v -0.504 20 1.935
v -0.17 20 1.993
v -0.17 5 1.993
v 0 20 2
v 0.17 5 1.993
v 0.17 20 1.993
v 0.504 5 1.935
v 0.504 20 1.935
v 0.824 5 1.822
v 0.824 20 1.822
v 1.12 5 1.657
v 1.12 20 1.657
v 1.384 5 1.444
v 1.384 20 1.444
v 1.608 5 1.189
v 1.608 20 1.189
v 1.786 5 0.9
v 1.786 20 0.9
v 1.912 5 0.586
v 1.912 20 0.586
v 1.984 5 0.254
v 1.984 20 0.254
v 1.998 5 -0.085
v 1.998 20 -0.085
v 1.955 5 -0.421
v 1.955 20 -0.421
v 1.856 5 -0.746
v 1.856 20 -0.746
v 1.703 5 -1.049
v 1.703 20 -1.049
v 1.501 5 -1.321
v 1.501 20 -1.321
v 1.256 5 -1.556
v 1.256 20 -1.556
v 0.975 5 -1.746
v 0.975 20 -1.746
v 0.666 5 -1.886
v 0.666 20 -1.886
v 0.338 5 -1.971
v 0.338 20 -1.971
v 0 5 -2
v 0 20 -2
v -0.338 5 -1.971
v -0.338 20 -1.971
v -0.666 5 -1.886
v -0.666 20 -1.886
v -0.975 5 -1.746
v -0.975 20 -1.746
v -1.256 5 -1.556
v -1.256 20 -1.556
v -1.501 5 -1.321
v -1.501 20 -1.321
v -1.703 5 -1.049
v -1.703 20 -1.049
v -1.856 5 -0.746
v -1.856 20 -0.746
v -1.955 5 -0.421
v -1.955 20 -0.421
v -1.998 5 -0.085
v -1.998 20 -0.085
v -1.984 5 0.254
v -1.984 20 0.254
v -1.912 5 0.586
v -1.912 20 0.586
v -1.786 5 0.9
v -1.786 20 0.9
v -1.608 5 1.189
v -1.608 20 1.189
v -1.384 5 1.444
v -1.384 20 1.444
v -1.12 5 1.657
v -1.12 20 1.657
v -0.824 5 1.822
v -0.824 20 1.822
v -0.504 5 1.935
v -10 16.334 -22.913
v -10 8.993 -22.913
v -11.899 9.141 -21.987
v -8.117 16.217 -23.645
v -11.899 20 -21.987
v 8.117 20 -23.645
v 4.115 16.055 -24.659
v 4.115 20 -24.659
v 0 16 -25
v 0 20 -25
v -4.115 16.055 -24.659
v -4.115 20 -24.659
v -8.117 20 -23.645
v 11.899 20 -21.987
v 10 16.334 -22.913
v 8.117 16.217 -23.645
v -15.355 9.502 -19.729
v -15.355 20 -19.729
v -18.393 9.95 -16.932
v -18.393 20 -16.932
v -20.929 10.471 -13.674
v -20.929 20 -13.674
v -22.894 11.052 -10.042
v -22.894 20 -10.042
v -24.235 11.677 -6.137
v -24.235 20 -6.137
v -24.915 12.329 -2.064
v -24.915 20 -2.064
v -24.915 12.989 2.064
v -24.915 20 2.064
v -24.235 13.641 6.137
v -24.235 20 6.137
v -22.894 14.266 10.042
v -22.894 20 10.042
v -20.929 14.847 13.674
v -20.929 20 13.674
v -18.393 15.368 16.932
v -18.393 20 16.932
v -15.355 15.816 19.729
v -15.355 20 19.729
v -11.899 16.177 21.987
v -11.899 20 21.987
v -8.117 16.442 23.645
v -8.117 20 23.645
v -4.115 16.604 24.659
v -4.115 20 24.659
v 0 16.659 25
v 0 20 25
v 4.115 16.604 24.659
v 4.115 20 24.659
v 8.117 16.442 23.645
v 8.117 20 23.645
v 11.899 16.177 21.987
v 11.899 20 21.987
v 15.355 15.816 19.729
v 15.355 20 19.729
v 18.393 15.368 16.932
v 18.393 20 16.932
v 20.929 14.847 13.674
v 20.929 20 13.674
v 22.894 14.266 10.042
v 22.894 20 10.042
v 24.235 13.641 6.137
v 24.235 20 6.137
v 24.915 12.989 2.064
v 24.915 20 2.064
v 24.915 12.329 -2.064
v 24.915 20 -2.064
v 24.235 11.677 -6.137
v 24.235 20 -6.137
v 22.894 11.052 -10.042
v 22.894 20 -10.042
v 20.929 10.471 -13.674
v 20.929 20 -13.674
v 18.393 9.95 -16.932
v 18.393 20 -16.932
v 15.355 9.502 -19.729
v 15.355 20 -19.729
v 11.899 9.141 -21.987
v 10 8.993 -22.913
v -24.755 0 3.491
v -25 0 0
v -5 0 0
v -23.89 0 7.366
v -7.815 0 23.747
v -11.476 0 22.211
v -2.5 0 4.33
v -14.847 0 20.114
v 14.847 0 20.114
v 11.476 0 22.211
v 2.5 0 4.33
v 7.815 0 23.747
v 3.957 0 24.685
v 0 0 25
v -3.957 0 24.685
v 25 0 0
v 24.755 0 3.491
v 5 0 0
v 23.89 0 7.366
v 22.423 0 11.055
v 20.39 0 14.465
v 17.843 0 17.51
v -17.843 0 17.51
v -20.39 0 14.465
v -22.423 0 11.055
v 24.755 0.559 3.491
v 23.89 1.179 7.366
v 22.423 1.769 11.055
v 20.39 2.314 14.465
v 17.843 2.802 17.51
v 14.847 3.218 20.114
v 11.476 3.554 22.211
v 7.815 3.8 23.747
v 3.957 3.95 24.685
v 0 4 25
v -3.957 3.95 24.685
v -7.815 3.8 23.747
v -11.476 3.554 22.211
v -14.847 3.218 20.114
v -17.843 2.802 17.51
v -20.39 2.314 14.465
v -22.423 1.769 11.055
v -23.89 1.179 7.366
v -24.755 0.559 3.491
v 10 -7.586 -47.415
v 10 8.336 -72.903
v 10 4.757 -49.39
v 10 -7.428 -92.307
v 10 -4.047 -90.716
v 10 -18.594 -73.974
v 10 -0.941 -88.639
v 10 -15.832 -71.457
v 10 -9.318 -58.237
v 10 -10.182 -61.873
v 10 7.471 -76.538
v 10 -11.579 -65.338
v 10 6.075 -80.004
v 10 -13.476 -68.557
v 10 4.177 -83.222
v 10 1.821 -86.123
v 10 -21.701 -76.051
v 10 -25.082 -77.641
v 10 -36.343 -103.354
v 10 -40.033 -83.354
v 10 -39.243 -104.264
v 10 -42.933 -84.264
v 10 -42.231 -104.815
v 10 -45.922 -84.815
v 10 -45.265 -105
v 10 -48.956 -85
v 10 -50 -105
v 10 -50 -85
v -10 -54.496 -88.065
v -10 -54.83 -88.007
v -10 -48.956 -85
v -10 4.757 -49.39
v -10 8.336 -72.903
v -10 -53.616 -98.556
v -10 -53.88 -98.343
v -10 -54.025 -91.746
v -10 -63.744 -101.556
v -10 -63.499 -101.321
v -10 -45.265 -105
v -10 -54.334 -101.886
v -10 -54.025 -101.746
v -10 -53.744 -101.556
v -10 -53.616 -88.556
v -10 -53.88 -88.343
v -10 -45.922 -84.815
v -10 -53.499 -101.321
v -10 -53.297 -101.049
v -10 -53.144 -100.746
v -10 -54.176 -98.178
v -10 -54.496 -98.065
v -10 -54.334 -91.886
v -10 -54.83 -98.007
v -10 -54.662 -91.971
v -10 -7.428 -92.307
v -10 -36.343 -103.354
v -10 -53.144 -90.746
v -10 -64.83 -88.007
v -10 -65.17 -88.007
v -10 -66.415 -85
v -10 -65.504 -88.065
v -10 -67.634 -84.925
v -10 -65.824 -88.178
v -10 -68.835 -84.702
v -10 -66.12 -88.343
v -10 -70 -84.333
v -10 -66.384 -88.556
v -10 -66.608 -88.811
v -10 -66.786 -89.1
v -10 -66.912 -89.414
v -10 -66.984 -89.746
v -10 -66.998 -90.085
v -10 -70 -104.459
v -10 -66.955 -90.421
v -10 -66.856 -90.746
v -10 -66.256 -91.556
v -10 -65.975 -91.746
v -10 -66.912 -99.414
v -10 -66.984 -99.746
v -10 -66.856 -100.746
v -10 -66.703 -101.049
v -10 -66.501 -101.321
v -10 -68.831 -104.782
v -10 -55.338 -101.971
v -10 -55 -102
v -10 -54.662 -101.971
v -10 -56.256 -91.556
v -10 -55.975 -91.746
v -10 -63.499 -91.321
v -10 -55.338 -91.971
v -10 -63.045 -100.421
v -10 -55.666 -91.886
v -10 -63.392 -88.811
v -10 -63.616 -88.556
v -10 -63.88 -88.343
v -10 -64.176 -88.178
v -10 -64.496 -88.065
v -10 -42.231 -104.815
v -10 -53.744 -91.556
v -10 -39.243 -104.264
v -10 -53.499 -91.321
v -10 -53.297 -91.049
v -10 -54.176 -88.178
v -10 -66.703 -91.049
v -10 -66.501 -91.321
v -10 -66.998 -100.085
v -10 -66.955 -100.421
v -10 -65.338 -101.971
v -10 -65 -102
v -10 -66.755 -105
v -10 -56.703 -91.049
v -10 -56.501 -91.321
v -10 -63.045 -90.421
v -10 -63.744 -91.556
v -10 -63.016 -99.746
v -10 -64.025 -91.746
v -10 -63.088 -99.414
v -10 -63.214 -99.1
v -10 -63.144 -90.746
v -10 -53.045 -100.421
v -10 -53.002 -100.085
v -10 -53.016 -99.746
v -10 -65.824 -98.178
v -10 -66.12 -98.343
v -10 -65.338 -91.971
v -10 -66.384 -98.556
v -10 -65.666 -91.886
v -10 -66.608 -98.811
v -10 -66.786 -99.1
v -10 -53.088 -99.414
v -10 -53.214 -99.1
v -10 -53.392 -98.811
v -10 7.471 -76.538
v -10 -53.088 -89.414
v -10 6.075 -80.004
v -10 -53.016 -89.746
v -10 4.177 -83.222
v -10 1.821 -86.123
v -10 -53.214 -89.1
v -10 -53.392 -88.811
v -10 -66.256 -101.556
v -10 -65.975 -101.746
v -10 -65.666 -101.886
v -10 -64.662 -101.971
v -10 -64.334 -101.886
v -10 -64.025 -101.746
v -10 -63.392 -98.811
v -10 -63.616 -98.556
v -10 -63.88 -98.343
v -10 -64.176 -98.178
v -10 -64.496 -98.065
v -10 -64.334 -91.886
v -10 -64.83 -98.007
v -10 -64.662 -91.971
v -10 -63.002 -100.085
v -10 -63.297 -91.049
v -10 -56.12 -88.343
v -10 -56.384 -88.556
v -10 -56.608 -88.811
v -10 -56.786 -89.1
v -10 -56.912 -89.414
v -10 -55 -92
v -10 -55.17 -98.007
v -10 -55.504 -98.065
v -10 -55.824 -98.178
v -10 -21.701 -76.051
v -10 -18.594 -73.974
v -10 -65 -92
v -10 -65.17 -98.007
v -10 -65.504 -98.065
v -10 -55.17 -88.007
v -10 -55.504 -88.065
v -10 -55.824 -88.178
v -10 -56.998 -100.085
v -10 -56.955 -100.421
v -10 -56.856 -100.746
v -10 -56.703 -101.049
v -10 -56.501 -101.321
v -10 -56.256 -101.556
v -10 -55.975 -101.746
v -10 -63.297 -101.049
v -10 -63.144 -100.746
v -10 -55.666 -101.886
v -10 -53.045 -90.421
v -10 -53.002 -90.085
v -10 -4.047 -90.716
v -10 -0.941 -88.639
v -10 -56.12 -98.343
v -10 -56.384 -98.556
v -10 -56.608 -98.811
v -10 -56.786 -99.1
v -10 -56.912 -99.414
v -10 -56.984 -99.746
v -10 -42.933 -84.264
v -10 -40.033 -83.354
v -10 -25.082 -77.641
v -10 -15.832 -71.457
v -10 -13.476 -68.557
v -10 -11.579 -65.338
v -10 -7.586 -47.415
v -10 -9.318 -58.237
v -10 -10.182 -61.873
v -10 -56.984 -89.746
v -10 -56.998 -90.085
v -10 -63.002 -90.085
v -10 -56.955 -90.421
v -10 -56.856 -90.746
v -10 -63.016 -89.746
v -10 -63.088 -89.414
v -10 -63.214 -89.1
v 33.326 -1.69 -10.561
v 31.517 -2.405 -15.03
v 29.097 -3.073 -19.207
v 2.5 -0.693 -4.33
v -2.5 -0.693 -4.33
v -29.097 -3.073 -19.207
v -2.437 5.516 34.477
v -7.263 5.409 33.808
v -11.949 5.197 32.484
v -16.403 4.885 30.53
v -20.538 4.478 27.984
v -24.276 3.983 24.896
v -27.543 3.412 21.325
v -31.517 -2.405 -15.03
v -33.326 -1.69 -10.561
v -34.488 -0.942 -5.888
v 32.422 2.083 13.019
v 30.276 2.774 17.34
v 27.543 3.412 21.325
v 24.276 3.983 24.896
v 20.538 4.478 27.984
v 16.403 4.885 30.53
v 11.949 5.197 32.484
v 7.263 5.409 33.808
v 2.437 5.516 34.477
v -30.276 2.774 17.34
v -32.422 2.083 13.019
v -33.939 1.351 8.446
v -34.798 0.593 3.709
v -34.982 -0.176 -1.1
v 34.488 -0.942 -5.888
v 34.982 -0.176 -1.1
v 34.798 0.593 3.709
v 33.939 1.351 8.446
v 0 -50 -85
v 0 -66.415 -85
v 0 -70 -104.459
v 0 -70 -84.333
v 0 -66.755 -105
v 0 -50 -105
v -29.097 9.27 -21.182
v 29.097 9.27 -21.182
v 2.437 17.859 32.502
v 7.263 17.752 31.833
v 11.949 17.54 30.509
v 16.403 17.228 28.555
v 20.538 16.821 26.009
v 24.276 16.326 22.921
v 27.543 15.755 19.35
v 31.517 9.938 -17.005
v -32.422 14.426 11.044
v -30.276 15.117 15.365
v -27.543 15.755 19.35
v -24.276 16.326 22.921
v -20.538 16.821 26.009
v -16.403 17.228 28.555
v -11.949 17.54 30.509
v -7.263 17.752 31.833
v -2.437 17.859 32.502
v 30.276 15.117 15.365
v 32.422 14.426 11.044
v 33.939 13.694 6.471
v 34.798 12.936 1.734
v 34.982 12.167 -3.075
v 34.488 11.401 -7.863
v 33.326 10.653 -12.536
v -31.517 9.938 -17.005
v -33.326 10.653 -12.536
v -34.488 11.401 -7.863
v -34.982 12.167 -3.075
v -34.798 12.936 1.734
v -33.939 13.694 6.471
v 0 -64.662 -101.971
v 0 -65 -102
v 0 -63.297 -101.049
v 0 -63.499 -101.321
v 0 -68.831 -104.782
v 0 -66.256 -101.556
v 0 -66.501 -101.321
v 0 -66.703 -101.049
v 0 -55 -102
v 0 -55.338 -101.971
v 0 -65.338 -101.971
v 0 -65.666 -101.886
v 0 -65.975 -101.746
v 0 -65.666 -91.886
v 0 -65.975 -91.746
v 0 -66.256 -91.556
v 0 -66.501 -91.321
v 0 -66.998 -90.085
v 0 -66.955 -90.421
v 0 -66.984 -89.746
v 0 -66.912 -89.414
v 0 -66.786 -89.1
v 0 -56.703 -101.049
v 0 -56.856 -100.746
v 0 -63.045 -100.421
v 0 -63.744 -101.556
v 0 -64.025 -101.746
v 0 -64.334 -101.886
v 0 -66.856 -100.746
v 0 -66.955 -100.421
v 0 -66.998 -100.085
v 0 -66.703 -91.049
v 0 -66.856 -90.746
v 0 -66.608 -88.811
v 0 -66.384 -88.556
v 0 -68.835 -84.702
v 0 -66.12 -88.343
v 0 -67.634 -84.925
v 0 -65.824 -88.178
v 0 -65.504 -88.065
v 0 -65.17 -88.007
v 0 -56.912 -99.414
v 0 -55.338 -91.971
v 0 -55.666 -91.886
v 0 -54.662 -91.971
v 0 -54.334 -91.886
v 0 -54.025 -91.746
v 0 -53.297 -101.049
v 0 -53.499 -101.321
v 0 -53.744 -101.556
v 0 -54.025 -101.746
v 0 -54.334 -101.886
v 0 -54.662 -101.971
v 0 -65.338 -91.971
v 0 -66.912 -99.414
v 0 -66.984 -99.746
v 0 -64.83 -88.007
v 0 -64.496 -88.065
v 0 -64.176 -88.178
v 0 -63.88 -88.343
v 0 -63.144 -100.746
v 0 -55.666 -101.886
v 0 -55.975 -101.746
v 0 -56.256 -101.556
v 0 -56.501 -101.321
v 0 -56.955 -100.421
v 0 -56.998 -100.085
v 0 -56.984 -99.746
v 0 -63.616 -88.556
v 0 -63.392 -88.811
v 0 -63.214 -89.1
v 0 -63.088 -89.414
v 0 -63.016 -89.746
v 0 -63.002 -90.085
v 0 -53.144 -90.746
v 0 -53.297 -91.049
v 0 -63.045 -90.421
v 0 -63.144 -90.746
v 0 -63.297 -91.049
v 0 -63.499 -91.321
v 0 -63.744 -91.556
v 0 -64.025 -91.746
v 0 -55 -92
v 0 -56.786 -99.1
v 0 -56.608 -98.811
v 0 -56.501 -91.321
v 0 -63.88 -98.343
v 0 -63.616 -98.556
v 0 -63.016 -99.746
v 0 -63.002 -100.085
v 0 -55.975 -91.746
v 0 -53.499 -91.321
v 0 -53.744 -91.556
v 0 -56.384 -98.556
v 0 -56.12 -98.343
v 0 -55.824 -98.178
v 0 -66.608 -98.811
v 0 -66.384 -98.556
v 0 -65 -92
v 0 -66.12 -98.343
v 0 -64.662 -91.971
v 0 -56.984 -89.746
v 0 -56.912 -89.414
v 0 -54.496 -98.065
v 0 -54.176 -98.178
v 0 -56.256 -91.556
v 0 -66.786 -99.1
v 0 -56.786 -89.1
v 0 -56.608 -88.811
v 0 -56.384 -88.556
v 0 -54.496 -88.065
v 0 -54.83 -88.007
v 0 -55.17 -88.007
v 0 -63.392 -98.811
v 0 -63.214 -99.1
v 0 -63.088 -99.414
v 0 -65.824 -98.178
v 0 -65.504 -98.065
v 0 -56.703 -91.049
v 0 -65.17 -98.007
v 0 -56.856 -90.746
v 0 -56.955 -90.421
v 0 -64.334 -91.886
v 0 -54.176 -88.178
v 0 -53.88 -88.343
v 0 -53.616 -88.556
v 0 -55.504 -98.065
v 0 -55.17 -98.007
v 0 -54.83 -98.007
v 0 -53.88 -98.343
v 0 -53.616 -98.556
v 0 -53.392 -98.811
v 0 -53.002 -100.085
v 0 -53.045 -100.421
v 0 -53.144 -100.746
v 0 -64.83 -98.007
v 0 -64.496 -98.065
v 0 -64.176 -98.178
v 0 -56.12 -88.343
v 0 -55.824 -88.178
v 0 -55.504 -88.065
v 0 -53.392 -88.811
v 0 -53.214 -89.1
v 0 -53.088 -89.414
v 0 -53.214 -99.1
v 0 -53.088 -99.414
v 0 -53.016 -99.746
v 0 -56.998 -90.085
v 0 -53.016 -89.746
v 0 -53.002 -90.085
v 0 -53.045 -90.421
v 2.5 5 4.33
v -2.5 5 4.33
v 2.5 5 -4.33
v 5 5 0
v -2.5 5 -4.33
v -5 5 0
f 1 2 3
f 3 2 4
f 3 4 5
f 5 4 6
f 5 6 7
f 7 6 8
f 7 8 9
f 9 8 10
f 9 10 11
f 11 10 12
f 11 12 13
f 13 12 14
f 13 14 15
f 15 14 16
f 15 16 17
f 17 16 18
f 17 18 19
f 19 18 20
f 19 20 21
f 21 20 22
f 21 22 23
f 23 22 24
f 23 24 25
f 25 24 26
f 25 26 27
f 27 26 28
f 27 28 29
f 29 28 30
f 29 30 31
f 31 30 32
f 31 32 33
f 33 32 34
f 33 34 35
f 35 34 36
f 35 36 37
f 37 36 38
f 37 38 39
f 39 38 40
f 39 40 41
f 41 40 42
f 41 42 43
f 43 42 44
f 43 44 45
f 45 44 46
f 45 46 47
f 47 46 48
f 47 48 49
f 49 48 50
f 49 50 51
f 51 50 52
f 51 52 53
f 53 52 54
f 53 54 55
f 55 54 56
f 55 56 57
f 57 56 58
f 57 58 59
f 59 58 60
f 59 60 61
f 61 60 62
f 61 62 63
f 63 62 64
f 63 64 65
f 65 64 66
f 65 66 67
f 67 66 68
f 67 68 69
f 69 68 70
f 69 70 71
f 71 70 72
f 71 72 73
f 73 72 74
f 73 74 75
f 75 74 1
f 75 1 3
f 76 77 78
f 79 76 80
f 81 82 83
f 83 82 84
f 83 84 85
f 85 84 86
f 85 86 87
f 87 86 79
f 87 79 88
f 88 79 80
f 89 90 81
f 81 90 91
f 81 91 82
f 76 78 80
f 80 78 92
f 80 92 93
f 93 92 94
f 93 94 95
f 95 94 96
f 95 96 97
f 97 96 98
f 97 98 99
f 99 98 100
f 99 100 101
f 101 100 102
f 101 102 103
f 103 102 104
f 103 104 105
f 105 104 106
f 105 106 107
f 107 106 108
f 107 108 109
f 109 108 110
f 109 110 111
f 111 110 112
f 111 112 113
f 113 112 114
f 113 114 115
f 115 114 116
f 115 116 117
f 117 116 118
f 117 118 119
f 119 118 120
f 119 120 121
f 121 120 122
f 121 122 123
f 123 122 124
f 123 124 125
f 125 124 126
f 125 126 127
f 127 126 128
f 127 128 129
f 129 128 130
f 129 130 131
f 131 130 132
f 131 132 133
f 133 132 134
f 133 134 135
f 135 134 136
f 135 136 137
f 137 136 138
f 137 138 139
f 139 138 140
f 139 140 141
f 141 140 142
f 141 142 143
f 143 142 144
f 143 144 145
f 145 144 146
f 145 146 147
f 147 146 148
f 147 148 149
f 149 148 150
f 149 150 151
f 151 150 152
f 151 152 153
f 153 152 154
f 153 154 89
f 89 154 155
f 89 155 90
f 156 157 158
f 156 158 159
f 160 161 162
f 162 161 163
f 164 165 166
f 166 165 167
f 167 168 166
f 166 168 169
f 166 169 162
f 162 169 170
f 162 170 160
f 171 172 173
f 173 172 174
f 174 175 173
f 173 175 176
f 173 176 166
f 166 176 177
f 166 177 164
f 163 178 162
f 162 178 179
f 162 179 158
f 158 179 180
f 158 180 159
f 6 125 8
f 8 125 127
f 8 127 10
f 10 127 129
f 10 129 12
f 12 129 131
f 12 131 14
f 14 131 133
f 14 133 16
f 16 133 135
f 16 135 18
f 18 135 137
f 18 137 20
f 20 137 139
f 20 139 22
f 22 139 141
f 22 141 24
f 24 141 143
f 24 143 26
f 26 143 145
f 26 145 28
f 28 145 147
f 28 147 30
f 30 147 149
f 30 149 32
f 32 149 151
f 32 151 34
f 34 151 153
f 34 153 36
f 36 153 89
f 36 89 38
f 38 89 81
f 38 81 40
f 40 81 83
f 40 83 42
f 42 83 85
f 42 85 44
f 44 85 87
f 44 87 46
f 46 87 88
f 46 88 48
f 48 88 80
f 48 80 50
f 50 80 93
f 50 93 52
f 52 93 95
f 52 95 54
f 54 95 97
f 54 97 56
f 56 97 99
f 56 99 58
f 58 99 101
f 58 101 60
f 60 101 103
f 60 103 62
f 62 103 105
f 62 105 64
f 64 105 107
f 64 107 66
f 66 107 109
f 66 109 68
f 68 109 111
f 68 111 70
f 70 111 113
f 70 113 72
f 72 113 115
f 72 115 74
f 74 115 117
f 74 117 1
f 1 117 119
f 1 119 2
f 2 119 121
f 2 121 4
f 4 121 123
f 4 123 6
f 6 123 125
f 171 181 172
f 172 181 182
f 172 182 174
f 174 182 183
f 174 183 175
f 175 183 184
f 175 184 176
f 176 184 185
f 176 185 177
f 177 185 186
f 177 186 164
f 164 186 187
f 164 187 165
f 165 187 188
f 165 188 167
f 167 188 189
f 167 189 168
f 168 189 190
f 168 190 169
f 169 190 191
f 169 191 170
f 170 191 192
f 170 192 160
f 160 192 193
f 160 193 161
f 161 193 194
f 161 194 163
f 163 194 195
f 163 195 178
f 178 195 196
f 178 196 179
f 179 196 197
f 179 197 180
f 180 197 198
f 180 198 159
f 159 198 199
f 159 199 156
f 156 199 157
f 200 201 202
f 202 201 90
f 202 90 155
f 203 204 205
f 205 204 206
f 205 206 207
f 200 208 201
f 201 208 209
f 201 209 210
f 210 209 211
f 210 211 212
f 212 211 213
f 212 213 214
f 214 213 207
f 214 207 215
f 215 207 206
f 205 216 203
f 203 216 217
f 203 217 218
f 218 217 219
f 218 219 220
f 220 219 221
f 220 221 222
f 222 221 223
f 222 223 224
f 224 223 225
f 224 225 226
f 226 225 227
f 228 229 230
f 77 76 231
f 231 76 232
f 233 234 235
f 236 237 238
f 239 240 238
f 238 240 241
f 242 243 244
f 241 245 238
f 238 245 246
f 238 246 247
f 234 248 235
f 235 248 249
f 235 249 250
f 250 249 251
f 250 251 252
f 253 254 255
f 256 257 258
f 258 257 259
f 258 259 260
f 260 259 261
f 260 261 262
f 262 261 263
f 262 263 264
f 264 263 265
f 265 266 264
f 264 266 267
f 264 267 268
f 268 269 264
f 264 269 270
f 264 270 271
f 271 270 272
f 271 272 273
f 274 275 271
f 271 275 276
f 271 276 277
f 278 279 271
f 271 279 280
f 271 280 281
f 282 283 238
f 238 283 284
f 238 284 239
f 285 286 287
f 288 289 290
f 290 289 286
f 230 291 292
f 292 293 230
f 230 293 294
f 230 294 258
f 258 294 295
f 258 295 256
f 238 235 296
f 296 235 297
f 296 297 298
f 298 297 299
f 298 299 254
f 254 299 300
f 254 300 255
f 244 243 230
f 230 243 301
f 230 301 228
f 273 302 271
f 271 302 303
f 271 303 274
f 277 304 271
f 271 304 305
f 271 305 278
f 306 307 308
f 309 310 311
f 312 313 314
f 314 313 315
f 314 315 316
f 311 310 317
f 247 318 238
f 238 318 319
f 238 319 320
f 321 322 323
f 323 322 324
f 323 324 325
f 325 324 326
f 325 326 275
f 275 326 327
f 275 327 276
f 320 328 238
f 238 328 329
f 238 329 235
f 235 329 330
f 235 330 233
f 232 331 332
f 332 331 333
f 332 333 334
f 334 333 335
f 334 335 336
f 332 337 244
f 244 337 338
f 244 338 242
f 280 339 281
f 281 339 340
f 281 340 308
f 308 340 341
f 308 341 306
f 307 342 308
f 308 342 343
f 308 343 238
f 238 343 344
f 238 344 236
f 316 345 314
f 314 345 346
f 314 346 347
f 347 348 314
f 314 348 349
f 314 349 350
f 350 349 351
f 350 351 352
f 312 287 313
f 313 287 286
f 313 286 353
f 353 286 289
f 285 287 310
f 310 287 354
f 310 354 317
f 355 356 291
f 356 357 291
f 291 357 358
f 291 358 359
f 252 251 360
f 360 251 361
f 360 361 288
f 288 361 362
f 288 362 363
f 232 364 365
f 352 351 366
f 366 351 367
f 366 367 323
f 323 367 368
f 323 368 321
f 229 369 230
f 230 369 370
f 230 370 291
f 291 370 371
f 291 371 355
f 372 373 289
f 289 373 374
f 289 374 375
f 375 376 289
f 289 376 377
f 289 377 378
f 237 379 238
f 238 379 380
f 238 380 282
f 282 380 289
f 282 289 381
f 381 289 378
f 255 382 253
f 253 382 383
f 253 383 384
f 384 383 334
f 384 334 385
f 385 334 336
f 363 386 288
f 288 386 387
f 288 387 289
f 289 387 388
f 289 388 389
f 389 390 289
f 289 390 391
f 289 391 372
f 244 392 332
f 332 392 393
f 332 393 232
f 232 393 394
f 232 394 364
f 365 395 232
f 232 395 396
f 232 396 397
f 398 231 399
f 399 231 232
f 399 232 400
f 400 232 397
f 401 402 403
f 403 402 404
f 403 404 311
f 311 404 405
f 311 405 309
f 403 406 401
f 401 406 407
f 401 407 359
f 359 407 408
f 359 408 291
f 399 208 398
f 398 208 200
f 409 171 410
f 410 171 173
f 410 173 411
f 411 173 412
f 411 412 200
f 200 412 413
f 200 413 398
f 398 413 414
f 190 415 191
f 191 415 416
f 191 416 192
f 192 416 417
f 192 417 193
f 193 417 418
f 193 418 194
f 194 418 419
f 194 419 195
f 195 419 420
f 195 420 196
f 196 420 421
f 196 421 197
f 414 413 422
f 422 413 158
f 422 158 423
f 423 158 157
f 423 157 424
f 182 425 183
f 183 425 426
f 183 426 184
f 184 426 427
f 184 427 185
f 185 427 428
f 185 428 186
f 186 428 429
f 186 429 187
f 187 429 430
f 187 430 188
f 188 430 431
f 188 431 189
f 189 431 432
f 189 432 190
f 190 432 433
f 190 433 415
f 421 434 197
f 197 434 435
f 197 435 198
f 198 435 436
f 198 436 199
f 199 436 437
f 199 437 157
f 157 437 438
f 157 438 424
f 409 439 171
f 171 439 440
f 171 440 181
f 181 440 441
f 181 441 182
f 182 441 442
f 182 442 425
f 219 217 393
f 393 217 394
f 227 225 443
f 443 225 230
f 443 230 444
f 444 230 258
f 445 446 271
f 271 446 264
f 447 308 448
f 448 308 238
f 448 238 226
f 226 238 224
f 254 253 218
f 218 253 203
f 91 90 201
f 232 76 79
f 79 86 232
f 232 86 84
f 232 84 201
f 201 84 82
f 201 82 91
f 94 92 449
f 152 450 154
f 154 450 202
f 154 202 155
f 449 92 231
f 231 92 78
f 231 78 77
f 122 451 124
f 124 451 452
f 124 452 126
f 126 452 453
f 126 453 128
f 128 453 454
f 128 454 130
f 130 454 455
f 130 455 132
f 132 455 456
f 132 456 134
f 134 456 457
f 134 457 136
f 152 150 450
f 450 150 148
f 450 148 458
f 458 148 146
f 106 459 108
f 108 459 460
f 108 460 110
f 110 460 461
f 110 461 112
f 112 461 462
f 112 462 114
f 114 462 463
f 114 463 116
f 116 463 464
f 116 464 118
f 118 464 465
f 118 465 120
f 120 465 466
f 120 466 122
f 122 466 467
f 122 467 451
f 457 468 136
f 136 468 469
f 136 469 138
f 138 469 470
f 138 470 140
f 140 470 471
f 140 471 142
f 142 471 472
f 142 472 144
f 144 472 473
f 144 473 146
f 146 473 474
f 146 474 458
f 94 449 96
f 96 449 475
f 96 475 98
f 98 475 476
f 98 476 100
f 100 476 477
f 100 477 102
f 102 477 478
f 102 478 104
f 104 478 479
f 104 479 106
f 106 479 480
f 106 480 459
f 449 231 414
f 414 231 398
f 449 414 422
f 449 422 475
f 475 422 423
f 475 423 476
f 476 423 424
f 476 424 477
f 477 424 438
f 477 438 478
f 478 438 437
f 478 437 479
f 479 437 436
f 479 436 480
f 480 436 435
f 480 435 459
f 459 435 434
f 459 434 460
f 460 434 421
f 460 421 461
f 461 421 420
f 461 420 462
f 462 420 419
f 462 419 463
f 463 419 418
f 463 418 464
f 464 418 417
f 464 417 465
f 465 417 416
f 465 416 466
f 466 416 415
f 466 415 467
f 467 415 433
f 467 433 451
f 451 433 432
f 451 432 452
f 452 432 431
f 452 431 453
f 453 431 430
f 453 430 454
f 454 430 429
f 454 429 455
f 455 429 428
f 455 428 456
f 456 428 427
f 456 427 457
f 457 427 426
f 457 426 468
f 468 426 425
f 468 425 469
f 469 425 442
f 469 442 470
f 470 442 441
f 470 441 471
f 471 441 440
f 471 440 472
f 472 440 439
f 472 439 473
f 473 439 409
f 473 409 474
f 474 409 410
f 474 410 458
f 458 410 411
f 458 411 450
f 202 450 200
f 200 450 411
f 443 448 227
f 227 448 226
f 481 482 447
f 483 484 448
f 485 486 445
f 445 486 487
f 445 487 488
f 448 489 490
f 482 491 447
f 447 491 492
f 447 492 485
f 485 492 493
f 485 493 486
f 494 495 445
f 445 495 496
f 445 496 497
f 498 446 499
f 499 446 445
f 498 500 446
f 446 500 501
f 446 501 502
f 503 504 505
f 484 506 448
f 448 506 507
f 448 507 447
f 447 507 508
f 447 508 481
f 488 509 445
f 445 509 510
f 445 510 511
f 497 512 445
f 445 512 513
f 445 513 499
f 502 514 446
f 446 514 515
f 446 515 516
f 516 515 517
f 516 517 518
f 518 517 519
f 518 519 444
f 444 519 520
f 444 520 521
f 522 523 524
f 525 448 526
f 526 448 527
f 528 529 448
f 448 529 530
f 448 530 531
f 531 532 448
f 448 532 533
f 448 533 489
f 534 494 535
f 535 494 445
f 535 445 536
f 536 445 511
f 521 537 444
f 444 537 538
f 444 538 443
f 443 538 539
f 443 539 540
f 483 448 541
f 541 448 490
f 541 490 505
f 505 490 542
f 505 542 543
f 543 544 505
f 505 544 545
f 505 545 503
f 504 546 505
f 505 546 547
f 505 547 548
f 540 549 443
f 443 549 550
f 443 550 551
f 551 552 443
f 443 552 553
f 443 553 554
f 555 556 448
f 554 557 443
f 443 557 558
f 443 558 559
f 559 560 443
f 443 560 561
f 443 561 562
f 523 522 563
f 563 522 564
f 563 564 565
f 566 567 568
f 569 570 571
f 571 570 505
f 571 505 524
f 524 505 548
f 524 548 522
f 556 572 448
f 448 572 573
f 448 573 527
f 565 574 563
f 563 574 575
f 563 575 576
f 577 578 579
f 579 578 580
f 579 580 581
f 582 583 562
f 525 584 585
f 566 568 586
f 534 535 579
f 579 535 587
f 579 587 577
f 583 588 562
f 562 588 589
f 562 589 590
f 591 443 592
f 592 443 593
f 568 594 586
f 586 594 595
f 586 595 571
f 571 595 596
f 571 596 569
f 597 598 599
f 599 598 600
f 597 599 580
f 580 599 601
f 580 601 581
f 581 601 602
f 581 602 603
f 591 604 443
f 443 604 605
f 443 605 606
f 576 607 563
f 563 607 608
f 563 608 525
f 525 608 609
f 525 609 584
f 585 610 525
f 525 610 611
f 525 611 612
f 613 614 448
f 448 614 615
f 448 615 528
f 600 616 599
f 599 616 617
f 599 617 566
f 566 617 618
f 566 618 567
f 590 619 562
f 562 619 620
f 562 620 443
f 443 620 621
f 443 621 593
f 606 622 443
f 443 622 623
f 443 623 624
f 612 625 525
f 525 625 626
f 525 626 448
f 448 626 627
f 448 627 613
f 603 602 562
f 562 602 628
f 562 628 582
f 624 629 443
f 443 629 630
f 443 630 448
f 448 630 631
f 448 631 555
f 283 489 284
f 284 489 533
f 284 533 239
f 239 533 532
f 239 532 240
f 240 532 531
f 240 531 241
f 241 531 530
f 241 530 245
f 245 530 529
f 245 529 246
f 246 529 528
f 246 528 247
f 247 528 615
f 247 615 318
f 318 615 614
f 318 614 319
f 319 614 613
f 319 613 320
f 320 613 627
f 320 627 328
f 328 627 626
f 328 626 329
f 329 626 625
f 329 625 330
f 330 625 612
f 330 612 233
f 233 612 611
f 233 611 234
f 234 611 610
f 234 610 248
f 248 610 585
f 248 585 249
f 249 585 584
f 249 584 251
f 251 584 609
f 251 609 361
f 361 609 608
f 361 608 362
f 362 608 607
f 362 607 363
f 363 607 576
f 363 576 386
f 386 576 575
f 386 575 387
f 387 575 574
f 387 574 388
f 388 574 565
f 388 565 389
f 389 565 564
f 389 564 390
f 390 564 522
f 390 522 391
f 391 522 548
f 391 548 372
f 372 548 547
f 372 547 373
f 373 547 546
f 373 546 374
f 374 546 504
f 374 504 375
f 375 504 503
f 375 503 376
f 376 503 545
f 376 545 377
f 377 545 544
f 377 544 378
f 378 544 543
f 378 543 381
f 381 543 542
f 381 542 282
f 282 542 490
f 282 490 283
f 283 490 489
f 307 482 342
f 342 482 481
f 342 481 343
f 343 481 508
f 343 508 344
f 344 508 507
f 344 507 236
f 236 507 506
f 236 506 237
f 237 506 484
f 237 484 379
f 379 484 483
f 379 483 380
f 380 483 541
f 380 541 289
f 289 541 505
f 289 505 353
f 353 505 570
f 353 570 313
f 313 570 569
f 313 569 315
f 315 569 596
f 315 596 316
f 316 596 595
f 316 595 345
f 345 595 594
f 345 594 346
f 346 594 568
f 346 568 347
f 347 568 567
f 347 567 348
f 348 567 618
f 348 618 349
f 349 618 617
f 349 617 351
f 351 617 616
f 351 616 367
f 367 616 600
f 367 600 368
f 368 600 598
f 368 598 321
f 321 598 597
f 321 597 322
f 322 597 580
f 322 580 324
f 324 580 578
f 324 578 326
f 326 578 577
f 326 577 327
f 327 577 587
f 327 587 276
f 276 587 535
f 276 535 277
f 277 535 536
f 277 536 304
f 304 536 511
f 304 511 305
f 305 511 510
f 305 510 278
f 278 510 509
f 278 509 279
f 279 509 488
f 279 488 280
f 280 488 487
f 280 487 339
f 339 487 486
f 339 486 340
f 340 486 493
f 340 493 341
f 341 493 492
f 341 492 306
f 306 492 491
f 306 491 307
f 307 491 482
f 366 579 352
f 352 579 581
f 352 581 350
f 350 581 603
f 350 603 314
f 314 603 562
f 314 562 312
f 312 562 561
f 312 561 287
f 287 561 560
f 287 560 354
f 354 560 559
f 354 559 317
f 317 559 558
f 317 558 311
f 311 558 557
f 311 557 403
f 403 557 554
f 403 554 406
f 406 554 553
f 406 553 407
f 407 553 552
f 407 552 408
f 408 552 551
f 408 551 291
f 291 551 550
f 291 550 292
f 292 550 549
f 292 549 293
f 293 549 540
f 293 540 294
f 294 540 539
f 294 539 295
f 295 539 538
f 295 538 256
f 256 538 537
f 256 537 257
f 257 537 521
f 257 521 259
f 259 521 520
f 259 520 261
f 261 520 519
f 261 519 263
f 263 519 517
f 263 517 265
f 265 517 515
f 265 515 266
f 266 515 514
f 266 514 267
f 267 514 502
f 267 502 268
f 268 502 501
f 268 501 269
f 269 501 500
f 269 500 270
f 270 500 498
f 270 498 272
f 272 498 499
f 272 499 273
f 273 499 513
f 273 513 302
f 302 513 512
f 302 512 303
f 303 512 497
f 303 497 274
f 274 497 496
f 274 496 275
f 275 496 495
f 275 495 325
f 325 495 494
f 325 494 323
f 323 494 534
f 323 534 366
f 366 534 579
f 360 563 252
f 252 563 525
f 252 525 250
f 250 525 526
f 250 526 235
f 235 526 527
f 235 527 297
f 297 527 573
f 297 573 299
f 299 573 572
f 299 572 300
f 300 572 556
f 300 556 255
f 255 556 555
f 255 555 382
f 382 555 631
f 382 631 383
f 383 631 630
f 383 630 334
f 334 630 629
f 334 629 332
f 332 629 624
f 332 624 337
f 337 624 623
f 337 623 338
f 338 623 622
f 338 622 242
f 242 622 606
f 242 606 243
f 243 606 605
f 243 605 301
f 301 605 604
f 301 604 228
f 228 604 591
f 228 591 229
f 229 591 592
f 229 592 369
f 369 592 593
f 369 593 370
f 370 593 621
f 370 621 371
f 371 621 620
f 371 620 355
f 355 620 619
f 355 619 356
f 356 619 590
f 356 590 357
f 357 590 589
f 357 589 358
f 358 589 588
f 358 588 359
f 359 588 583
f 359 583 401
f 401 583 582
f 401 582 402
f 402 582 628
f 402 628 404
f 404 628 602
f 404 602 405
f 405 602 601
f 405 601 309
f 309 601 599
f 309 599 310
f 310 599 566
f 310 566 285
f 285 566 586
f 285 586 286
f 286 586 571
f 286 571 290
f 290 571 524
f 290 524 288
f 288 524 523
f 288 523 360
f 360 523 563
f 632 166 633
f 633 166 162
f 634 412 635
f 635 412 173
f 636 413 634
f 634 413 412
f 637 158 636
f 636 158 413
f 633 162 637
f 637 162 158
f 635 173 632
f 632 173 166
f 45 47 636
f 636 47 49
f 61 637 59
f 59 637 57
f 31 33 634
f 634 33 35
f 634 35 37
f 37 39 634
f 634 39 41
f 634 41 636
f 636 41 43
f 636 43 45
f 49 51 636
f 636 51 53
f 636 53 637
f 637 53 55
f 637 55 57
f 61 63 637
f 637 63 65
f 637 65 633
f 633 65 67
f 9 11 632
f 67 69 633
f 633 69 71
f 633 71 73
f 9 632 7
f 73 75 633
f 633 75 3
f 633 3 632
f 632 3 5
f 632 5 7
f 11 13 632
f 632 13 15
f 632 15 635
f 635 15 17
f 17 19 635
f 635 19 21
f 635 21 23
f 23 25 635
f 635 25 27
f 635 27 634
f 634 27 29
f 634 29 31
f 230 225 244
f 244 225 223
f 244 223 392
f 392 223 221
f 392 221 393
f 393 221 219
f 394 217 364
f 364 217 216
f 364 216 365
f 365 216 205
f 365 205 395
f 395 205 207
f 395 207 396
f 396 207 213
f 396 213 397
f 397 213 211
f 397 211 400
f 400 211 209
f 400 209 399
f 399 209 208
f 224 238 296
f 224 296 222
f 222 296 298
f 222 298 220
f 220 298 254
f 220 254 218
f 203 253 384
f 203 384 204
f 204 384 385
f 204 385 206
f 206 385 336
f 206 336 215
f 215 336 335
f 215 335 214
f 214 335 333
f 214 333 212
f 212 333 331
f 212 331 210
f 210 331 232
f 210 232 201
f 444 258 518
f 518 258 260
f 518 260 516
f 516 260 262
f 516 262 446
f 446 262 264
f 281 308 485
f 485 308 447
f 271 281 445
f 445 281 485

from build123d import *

# Parameters (mm, degrees)
CROQUIS1_R              = 25
CROQUIS1_R_2            = 2
SALIENTE_EXTRUIR1_DEPTH = 20
SALIENTE_EXTRUIR2_DEPTH = 10
SALIENTE_EXTRUIR3_DEPTH = 12.5
CROQUIS5_W              = 20
CROQUIS5_H              = 20
CORTAR_EXTRUIR1_DEPTH   = 10
CROQUIS6_R              = 2
CORTAR_EXTRUIR2_DEPTH   = 10
CROQUIS7_R              = 2
CORTAR_EXTRUIR3_DEPTH   = 143.653426177
CORTAR_EXTRUIR4_DEPTH   = 5
REDONDEO1_R             = 25
SALIENTE_EXTRUIR4_DEPTH = 10
CORTAR_EXTRUIR5_DEPTH   = 10


with BuildPart() as part:
    # Croquis1 → Saliente-Extruir1 (new body)
    with BuildSketch(Plane(origin=(0, 0, 0), x_dir=(1, 0, 0), z_dir=(0, 1, 0))):
        with Locations(Location((0, 0, 0), (0, 0, 270))):
            Circle(CROQUIS1_R)
        with Locations(Location((0, 0, 0), (0, 0, 270))):
            Circle(CROQUIS1_R_2, mode=Mode.SUBTRACT)
    extrude(amount=SALIENTE_EXTRUIR1_DEPTH)

    # Croquis3 → Saliente-Extruir2 (add, symmetric)
    with BuildSketch(Plane(origin=(0, 0, 0), x_dir=(0, 0, -1), z_dir=(1, 0, 0))):
        Polygon((0, 20), (25, 16), (87.155173578, 6.055172228), (105, -40.652023899), (105, -70), (85, -70), (85, -44.34250964), (72.489864787, -11.598378366), (25, -4), (0, 0), align=None)
    extrude(amount=SALIENTE_EXTRUIR2_DEPTH, both=True)

    # Croquis4 → Saliente-Extruir3 (add)
    with BuildSketch(Plane(origin=(0, 0, 0), x_dir=(1, 0, 0), z_dir=(0, -0.9874406319167053, 0.15799050110667304))):
        with BuildLine():
            Line((-10, -48.018489352), (-29.097101252, -19.451444643))
            ThreePointArc((-29.097101252, -19.451444643), (0, 35), (29.097101252, -19.451444643))
            Line((29.097101252, -19.451444643), (10, -48.018489352))
            Line((10, -48.018489352), (-10, -48.018489352))
        make_face()
    extrude(amount=-SALIENTE_EXTRUIR3_DEPTH)

    # Croquis5 → Cortar-Extruir1 (cut)
    with BuildSketch(Plane(origin=(10, 0, 0), x_dir=(0, 0, -1), z_dir=(1, 0, 0))):
        with Locations((95, -60)):
            Rectangle(CROQUIS5_W, CROQUIS5_H)
    extrude(amount=-CORTAR_EXTRUIR1_DEPTH, mode=Mode.SUBTRACT)

    # Croquis6 → Cortar-Extruir2 (cut)
    with BuildSketch(Plane(origin=(0, 0, 0), x_dir=(0, 0, -1), z_dir=(1, 0, 0))):
        with Locations((100, -55)):
            Circle(CROQUIS6_R)
        with Locations((100, -65)):
            Circle(CROQUIS6_R)
        with Locations((90, -65)):
            Circle(CROQUIS6_R)
        with Locations((90, -55)):
            Circle(CROQUIS6_R)
    extrude(amount=-CORTAR_EXTRUIR2_DEPTH, mode=Mode.SUBTRACT)

    # Croquis7 → Cortar-Extruir3 (cut, through all)
    with BuildSketch(Plane(origin=(0, 20, 0), x_dir=(1, 0, 0), z_dir=(0, 1, 0))):
        with Locations(Location((0, 0, 0), (0, 0, 180))):
            Circle(CROQUIS7_R)
    extrude(amount=-CORTAR_EXTRUIR3_DEPTH, mode=Mode.SUBTRACT)

    # Croquis8 → Cortar-Extruir4 (cut, symmetric)
    with BuildSketch(Plane.XZ):
        Polygon((5, 0), (2.5, 4.330127019), (-2.5, 4.330127019), (-5, 0), (-2.5, -4.330127019), (2.5, -4.330127019), align=None)
    extrude(amount=CORTAR_EXTRUIR4_DEPTH, both=True, mode=Mode.SUBTRACT)

    # Redondeo1
    redondeo1_edges = [part.edges().sort_by_distance(p)[0] for p in [
        (0, -11.598378366, -72.489864787),
        (0, -44.34250964, -85),
        (0, -40.652023899, -105),
        (0, 6.055172228, -87.155173578),
    ]]
    fillet(redondeo1_edges, radius=REDONDEO1_R)

    # Croquis9 → Saliente-Extruir4 (add)
    with BuildSketch(Plane.ZY.offset(10)):
        with BuildLine():
            Line((-85, -70), (-84.332978708, -70))
            ThreePointArc((-84.332978708, -70), (-84.831826004, -68.238225633), (-85, -66.414927782))
            Line((-85, -66.414927782), (-85, -70))
        make_face()
    extrude(amount=-SALIENTE_EXTRUIR4_DEPTH)

    # Croquis10 → Cortar-Extruir5 (cut)
    with BuildSketch(Plane(origin=(0, 0, 0), x_dir=(0, 0, -1), z_dir=(1, 0, 0))):
        Polygon((105, -66.754605318), (105, -70), (104.45872155, -70), (104.782079233, -68.830882246), align=None)
    extrude(amount=-CORTAR_EXTRUIR5_DEPTH, mode=Mode.SUBTRACT)


solid = part.part
